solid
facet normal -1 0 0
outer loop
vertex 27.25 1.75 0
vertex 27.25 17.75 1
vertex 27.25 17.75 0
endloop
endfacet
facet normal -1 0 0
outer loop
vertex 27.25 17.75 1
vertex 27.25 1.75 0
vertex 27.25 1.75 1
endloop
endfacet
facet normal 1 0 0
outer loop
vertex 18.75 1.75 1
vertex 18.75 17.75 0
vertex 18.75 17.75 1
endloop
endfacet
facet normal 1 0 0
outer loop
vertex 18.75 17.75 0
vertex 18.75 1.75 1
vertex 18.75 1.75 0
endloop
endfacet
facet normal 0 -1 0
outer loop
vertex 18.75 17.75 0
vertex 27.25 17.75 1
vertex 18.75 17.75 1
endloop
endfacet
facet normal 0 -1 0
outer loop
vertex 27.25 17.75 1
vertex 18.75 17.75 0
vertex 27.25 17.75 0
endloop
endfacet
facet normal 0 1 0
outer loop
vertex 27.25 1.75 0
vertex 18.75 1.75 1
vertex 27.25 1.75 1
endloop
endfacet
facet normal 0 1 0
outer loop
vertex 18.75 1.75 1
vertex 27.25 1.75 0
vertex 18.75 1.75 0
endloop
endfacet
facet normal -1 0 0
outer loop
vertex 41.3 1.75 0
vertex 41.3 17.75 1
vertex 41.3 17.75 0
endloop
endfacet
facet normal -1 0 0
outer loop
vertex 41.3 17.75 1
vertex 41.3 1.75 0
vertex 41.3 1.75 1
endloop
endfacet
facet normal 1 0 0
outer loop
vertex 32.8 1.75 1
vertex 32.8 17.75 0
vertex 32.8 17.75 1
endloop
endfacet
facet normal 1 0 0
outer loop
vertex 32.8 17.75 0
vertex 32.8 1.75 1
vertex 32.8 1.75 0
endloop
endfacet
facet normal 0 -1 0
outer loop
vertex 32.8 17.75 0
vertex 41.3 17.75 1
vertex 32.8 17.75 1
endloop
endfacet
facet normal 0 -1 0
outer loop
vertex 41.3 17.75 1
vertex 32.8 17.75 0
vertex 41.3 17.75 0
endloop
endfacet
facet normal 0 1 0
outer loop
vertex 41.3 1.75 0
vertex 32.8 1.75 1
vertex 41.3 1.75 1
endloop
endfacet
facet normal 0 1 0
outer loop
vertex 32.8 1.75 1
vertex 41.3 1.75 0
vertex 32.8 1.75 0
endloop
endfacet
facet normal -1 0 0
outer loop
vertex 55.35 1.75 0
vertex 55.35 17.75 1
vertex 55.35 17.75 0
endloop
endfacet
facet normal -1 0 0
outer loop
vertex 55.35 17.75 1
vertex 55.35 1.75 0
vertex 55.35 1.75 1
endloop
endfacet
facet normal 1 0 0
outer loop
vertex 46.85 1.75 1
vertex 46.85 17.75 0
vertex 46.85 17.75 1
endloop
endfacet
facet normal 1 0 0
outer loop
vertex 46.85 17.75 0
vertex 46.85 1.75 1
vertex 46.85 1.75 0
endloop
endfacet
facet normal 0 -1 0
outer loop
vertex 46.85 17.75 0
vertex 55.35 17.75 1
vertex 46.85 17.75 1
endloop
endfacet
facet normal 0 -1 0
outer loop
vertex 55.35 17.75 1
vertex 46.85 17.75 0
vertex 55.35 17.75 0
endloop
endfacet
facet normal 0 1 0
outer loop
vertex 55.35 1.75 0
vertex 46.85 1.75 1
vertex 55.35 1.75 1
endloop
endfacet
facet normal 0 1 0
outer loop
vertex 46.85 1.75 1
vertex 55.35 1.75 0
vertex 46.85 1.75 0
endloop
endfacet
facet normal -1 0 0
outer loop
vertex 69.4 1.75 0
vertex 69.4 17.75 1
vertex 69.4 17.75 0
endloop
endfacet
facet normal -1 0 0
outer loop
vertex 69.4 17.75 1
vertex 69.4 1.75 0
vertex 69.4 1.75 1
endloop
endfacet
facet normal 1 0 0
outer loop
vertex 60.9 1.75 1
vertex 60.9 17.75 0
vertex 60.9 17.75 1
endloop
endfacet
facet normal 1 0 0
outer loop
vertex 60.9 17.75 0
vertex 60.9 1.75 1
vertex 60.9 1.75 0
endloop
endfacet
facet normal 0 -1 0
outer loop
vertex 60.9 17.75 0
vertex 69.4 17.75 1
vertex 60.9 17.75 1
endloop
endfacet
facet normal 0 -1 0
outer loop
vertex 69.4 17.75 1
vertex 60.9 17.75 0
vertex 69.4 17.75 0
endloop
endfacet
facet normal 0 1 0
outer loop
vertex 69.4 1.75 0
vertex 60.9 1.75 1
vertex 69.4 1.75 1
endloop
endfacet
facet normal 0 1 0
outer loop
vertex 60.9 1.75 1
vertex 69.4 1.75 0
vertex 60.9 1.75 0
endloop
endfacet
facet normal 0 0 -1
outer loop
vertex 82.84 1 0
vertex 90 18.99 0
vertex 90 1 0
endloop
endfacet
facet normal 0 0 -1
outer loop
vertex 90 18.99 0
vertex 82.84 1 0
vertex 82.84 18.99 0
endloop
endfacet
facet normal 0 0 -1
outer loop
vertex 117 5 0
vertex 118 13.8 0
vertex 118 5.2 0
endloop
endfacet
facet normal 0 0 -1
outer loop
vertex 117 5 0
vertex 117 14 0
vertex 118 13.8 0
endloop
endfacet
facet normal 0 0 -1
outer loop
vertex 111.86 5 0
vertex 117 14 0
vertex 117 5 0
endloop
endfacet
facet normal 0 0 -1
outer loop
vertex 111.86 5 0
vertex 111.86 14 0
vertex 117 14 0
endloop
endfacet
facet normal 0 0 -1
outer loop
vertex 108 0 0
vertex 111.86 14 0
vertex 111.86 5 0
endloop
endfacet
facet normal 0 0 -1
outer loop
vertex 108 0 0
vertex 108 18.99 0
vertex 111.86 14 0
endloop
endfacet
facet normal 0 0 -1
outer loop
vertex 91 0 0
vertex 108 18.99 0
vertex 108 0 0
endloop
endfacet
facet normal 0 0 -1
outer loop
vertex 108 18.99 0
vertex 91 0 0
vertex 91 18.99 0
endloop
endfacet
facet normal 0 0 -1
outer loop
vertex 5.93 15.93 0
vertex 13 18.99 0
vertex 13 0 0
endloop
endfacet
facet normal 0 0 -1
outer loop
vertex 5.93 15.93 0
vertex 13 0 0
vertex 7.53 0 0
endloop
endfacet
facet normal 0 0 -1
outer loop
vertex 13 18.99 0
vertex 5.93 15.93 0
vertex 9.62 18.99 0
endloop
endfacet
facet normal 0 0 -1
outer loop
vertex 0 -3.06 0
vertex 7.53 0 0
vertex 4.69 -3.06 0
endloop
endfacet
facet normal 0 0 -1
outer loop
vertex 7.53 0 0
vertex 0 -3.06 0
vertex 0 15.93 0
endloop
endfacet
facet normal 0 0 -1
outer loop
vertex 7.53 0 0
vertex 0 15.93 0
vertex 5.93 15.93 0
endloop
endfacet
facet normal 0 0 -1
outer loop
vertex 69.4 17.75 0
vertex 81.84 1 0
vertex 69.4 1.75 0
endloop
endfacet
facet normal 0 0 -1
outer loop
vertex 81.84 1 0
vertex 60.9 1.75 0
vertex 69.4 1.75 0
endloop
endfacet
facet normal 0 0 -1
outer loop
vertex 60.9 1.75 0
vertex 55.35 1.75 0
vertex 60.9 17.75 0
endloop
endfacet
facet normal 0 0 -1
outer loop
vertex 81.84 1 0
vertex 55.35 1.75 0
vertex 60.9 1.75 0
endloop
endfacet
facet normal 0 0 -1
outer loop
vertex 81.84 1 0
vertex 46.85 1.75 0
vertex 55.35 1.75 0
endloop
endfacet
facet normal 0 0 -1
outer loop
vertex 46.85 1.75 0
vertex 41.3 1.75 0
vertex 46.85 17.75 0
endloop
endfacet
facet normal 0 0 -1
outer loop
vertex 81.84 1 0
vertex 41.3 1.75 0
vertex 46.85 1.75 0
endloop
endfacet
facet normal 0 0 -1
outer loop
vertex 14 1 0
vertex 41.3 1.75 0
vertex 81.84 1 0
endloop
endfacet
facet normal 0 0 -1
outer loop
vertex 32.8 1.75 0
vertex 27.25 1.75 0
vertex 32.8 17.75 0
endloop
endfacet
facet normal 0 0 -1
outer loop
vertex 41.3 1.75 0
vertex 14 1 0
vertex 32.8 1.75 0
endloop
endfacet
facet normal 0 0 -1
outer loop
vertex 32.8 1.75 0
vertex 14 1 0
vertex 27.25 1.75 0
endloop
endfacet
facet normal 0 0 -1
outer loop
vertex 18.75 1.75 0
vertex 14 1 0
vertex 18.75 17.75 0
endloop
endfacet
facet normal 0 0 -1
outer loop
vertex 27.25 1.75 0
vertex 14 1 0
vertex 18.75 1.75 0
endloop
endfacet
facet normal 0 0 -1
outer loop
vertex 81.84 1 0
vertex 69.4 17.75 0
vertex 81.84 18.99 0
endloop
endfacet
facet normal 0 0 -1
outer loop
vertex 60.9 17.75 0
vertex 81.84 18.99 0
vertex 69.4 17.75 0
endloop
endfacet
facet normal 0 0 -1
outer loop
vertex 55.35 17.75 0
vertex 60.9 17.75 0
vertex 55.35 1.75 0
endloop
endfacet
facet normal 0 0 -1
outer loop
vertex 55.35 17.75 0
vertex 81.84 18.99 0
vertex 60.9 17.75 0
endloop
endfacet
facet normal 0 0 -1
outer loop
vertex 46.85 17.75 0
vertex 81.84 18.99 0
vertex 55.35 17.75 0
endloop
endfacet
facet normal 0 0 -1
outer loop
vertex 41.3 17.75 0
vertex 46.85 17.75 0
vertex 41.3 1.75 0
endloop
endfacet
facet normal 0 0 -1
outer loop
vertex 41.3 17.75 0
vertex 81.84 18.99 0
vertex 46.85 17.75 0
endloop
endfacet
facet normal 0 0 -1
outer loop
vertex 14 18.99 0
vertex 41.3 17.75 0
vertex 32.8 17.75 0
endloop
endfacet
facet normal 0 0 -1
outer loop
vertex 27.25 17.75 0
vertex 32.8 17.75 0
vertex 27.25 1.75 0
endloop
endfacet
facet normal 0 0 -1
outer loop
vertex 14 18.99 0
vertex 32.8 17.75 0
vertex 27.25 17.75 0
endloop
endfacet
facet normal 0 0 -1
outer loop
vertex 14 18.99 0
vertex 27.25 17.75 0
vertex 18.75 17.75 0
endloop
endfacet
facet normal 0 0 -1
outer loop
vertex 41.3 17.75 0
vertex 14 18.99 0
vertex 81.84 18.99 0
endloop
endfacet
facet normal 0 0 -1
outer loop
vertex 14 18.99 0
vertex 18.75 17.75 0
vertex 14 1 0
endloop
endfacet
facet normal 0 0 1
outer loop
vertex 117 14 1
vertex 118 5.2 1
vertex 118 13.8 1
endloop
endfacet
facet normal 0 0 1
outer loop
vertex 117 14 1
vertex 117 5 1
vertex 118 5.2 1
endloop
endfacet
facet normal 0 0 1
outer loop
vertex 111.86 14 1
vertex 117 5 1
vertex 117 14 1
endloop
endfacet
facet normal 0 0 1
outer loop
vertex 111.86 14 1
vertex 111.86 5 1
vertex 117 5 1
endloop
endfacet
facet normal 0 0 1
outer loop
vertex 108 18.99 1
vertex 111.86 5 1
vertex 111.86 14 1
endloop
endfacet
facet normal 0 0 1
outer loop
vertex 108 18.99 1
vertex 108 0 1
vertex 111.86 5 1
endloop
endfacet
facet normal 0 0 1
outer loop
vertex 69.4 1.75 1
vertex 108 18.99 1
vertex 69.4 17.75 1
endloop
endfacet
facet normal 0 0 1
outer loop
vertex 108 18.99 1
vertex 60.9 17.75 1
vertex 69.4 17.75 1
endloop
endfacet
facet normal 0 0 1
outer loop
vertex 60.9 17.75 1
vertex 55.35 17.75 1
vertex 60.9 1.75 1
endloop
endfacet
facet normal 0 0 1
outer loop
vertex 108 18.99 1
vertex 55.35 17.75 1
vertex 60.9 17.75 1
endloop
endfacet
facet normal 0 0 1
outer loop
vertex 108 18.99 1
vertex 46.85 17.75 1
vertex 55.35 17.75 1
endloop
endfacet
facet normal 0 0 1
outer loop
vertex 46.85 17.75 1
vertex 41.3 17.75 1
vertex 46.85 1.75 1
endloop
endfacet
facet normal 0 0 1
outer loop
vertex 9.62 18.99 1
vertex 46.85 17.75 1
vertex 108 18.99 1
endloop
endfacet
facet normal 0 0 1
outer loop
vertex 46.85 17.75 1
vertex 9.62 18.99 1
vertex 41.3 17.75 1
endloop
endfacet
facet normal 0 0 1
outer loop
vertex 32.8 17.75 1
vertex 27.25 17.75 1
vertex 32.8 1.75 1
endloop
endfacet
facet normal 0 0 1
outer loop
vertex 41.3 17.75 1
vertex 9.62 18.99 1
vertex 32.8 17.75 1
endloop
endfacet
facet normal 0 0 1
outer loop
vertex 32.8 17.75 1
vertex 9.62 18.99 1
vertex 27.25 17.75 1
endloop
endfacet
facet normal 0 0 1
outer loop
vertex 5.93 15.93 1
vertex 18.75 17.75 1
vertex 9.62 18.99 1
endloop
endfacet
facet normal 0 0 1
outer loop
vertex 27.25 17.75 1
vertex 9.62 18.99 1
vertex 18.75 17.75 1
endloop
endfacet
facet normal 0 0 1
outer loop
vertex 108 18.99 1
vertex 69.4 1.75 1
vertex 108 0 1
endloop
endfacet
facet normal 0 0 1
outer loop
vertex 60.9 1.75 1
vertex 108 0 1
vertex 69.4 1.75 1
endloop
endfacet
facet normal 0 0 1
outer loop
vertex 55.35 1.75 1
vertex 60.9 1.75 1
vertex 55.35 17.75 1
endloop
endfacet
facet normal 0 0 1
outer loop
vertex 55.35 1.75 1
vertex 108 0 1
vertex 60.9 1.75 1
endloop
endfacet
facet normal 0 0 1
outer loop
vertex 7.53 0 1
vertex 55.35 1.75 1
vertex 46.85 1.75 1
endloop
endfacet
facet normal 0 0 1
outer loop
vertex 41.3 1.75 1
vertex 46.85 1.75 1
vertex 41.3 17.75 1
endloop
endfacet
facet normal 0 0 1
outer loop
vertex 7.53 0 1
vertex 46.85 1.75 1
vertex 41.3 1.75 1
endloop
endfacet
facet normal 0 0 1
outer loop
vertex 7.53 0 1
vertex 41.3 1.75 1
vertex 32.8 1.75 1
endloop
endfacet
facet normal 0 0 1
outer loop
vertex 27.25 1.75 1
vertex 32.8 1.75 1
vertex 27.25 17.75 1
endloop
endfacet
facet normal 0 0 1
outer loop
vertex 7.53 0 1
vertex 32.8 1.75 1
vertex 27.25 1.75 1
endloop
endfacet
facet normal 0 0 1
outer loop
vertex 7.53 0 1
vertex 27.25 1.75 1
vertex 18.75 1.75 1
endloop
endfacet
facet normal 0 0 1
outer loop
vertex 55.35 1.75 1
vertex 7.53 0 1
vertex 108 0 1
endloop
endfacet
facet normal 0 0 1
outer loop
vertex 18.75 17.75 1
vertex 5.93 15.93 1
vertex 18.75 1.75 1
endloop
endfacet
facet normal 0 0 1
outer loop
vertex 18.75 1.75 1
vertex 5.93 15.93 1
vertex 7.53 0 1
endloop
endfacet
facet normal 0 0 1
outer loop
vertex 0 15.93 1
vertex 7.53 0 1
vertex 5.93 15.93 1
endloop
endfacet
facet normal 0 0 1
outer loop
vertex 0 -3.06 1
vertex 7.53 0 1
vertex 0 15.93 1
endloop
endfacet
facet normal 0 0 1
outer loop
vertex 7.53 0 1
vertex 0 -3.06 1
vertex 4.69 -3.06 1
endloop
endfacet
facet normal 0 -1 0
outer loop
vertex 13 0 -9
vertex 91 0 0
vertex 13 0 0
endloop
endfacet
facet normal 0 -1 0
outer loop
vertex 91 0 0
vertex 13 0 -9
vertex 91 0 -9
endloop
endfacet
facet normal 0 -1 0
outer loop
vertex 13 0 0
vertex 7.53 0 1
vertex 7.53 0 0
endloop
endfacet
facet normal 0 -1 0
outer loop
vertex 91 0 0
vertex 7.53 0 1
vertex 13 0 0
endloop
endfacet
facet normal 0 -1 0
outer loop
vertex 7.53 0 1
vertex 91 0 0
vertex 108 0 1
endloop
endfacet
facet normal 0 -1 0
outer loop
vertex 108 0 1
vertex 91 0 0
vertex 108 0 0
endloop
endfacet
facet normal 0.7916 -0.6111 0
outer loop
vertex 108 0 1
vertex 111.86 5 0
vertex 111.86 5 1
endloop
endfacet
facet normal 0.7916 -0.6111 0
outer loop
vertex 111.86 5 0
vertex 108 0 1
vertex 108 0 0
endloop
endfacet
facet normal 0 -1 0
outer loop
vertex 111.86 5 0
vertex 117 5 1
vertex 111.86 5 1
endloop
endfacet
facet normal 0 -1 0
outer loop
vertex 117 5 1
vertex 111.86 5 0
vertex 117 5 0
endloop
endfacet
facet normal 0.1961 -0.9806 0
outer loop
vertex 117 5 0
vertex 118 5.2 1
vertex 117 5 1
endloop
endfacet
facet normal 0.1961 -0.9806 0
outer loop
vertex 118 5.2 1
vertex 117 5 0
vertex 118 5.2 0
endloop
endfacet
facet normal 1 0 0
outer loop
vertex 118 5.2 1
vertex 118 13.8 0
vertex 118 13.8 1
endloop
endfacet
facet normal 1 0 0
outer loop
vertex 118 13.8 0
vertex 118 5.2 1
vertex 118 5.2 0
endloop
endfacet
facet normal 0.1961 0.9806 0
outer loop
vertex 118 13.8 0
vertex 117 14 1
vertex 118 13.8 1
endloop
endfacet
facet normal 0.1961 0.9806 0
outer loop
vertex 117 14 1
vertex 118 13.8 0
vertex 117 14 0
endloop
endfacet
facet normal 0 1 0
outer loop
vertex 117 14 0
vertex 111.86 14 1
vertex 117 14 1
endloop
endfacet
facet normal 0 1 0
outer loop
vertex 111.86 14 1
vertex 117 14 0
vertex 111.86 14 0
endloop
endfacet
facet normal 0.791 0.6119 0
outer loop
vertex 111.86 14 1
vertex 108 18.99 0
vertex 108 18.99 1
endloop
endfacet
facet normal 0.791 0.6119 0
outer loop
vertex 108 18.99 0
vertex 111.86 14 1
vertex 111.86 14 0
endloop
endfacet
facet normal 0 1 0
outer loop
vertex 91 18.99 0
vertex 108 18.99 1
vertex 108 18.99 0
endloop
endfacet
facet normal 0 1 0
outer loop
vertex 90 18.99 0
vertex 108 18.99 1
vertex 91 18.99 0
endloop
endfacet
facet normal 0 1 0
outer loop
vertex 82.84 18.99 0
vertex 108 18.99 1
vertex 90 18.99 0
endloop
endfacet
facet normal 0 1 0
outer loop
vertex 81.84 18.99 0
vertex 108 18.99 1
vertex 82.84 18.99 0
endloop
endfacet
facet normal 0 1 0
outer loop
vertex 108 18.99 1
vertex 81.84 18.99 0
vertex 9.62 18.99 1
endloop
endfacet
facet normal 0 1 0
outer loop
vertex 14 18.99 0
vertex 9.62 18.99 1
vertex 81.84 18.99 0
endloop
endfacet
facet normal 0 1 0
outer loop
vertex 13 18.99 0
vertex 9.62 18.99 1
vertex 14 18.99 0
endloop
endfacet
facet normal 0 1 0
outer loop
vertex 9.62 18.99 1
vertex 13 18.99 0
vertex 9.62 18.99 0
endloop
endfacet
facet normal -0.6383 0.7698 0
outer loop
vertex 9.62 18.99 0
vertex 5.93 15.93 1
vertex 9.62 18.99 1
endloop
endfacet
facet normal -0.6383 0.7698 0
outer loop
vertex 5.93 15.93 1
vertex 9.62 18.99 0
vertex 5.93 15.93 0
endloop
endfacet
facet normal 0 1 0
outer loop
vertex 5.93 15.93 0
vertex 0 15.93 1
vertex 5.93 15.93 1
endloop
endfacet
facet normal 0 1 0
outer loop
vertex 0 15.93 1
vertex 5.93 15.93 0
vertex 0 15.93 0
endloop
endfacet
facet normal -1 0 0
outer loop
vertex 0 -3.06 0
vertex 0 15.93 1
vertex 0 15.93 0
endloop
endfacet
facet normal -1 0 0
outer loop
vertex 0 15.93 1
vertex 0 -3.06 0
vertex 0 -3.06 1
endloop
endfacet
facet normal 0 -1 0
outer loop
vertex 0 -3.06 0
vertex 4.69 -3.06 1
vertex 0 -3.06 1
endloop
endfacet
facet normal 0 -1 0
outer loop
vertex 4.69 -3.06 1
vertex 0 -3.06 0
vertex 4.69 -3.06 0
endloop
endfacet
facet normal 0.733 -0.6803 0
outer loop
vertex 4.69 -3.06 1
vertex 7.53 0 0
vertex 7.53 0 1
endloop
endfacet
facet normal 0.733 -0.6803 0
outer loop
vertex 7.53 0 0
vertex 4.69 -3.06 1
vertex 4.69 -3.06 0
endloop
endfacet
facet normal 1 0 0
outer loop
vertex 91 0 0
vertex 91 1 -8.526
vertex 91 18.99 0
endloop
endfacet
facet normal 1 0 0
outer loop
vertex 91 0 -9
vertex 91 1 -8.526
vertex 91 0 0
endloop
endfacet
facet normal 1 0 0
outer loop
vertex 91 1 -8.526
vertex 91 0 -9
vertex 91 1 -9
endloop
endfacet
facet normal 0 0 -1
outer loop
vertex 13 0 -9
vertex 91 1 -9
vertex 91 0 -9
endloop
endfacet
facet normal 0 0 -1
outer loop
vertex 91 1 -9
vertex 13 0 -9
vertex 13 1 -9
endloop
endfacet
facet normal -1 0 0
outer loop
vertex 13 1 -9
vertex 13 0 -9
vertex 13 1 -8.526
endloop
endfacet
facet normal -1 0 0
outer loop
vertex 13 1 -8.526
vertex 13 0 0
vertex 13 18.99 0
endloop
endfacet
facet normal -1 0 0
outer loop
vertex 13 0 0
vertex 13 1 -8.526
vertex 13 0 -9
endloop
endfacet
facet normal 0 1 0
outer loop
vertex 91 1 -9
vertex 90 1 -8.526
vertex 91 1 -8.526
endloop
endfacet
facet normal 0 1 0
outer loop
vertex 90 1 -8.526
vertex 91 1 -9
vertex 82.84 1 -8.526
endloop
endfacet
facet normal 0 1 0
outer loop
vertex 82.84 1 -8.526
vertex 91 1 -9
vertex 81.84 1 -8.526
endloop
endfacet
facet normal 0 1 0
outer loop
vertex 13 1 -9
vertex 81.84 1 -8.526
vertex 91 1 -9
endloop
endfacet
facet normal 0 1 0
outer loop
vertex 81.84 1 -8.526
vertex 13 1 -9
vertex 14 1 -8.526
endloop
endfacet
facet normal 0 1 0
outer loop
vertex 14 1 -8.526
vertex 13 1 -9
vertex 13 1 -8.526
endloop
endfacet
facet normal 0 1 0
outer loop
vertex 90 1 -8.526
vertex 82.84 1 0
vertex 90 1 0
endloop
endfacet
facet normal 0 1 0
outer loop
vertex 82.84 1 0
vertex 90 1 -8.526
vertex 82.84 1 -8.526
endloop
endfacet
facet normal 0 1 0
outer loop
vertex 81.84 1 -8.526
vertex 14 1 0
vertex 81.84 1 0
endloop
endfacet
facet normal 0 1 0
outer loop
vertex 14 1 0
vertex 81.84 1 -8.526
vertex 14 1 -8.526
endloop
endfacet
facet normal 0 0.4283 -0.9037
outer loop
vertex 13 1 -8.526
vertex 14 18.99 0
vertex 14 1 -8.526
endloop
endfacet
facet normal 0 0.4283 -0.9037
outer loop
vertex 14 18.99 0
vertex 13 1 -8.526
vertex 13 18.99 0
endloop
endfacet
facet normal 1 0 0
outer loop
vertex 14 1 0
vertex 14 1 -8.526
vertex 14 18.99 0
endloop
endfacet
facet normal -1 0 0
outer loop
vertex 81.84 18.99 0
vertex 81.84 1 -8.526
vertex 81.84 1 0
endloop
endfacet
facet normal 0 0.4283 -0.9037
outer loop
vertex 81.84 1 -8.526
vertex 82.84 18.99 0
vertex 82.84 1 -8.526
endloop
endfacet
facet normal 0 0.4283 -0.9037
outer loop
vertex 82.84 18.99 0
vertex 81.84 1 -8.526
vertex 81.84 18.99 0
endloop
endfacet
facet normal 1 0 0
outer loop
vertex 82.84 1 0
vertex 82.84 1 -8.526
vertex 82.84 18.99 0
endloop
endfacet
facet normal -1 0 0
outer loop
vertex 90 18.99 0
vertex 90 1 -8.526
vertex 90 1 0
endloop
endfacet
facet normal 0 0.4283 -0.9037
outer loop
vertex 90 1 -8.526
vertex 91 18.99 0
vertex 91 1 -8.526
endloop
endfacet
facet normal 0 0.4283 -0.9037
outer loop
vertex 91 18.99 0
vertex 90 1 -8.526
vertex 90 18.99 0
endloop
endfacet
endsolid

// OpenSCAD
difference(){
    linear_extrude(1){
        polygon([[0, 0], [0, -3.06], [4.69, -3.06], [7.53, 0], [108, 0], [111.86, 5], [117, 5], [118, 5.2], [118, 13.8], [117, 14],
        [111.86, 14], [108, 18.99], [9.62 , 18.99], [5.93, 15.93], [0, 15.93]]);
    }
    for(i=[0:3]){
        translate([18.75 + i * (8.13 + 5.92), 1.75, -5]){
            cube([8.5, 16, 10]);
        }
    }
}

translate([13, 0, -9]) {
    cube([78, 1, 9]);
}

module support_structure(){
    rotate([0, 90, 0]){
        linear_extrude(1){
            polygon([[0, 0], [0, 18.99], [9, 0]]);
        }
    }
}


translate([13, 0, 0]){
    support_structure();
}

translate([81.84, 0, 0]){
    support_structure();
}

translate([90, 0, 0]){
    support_structure();
}
